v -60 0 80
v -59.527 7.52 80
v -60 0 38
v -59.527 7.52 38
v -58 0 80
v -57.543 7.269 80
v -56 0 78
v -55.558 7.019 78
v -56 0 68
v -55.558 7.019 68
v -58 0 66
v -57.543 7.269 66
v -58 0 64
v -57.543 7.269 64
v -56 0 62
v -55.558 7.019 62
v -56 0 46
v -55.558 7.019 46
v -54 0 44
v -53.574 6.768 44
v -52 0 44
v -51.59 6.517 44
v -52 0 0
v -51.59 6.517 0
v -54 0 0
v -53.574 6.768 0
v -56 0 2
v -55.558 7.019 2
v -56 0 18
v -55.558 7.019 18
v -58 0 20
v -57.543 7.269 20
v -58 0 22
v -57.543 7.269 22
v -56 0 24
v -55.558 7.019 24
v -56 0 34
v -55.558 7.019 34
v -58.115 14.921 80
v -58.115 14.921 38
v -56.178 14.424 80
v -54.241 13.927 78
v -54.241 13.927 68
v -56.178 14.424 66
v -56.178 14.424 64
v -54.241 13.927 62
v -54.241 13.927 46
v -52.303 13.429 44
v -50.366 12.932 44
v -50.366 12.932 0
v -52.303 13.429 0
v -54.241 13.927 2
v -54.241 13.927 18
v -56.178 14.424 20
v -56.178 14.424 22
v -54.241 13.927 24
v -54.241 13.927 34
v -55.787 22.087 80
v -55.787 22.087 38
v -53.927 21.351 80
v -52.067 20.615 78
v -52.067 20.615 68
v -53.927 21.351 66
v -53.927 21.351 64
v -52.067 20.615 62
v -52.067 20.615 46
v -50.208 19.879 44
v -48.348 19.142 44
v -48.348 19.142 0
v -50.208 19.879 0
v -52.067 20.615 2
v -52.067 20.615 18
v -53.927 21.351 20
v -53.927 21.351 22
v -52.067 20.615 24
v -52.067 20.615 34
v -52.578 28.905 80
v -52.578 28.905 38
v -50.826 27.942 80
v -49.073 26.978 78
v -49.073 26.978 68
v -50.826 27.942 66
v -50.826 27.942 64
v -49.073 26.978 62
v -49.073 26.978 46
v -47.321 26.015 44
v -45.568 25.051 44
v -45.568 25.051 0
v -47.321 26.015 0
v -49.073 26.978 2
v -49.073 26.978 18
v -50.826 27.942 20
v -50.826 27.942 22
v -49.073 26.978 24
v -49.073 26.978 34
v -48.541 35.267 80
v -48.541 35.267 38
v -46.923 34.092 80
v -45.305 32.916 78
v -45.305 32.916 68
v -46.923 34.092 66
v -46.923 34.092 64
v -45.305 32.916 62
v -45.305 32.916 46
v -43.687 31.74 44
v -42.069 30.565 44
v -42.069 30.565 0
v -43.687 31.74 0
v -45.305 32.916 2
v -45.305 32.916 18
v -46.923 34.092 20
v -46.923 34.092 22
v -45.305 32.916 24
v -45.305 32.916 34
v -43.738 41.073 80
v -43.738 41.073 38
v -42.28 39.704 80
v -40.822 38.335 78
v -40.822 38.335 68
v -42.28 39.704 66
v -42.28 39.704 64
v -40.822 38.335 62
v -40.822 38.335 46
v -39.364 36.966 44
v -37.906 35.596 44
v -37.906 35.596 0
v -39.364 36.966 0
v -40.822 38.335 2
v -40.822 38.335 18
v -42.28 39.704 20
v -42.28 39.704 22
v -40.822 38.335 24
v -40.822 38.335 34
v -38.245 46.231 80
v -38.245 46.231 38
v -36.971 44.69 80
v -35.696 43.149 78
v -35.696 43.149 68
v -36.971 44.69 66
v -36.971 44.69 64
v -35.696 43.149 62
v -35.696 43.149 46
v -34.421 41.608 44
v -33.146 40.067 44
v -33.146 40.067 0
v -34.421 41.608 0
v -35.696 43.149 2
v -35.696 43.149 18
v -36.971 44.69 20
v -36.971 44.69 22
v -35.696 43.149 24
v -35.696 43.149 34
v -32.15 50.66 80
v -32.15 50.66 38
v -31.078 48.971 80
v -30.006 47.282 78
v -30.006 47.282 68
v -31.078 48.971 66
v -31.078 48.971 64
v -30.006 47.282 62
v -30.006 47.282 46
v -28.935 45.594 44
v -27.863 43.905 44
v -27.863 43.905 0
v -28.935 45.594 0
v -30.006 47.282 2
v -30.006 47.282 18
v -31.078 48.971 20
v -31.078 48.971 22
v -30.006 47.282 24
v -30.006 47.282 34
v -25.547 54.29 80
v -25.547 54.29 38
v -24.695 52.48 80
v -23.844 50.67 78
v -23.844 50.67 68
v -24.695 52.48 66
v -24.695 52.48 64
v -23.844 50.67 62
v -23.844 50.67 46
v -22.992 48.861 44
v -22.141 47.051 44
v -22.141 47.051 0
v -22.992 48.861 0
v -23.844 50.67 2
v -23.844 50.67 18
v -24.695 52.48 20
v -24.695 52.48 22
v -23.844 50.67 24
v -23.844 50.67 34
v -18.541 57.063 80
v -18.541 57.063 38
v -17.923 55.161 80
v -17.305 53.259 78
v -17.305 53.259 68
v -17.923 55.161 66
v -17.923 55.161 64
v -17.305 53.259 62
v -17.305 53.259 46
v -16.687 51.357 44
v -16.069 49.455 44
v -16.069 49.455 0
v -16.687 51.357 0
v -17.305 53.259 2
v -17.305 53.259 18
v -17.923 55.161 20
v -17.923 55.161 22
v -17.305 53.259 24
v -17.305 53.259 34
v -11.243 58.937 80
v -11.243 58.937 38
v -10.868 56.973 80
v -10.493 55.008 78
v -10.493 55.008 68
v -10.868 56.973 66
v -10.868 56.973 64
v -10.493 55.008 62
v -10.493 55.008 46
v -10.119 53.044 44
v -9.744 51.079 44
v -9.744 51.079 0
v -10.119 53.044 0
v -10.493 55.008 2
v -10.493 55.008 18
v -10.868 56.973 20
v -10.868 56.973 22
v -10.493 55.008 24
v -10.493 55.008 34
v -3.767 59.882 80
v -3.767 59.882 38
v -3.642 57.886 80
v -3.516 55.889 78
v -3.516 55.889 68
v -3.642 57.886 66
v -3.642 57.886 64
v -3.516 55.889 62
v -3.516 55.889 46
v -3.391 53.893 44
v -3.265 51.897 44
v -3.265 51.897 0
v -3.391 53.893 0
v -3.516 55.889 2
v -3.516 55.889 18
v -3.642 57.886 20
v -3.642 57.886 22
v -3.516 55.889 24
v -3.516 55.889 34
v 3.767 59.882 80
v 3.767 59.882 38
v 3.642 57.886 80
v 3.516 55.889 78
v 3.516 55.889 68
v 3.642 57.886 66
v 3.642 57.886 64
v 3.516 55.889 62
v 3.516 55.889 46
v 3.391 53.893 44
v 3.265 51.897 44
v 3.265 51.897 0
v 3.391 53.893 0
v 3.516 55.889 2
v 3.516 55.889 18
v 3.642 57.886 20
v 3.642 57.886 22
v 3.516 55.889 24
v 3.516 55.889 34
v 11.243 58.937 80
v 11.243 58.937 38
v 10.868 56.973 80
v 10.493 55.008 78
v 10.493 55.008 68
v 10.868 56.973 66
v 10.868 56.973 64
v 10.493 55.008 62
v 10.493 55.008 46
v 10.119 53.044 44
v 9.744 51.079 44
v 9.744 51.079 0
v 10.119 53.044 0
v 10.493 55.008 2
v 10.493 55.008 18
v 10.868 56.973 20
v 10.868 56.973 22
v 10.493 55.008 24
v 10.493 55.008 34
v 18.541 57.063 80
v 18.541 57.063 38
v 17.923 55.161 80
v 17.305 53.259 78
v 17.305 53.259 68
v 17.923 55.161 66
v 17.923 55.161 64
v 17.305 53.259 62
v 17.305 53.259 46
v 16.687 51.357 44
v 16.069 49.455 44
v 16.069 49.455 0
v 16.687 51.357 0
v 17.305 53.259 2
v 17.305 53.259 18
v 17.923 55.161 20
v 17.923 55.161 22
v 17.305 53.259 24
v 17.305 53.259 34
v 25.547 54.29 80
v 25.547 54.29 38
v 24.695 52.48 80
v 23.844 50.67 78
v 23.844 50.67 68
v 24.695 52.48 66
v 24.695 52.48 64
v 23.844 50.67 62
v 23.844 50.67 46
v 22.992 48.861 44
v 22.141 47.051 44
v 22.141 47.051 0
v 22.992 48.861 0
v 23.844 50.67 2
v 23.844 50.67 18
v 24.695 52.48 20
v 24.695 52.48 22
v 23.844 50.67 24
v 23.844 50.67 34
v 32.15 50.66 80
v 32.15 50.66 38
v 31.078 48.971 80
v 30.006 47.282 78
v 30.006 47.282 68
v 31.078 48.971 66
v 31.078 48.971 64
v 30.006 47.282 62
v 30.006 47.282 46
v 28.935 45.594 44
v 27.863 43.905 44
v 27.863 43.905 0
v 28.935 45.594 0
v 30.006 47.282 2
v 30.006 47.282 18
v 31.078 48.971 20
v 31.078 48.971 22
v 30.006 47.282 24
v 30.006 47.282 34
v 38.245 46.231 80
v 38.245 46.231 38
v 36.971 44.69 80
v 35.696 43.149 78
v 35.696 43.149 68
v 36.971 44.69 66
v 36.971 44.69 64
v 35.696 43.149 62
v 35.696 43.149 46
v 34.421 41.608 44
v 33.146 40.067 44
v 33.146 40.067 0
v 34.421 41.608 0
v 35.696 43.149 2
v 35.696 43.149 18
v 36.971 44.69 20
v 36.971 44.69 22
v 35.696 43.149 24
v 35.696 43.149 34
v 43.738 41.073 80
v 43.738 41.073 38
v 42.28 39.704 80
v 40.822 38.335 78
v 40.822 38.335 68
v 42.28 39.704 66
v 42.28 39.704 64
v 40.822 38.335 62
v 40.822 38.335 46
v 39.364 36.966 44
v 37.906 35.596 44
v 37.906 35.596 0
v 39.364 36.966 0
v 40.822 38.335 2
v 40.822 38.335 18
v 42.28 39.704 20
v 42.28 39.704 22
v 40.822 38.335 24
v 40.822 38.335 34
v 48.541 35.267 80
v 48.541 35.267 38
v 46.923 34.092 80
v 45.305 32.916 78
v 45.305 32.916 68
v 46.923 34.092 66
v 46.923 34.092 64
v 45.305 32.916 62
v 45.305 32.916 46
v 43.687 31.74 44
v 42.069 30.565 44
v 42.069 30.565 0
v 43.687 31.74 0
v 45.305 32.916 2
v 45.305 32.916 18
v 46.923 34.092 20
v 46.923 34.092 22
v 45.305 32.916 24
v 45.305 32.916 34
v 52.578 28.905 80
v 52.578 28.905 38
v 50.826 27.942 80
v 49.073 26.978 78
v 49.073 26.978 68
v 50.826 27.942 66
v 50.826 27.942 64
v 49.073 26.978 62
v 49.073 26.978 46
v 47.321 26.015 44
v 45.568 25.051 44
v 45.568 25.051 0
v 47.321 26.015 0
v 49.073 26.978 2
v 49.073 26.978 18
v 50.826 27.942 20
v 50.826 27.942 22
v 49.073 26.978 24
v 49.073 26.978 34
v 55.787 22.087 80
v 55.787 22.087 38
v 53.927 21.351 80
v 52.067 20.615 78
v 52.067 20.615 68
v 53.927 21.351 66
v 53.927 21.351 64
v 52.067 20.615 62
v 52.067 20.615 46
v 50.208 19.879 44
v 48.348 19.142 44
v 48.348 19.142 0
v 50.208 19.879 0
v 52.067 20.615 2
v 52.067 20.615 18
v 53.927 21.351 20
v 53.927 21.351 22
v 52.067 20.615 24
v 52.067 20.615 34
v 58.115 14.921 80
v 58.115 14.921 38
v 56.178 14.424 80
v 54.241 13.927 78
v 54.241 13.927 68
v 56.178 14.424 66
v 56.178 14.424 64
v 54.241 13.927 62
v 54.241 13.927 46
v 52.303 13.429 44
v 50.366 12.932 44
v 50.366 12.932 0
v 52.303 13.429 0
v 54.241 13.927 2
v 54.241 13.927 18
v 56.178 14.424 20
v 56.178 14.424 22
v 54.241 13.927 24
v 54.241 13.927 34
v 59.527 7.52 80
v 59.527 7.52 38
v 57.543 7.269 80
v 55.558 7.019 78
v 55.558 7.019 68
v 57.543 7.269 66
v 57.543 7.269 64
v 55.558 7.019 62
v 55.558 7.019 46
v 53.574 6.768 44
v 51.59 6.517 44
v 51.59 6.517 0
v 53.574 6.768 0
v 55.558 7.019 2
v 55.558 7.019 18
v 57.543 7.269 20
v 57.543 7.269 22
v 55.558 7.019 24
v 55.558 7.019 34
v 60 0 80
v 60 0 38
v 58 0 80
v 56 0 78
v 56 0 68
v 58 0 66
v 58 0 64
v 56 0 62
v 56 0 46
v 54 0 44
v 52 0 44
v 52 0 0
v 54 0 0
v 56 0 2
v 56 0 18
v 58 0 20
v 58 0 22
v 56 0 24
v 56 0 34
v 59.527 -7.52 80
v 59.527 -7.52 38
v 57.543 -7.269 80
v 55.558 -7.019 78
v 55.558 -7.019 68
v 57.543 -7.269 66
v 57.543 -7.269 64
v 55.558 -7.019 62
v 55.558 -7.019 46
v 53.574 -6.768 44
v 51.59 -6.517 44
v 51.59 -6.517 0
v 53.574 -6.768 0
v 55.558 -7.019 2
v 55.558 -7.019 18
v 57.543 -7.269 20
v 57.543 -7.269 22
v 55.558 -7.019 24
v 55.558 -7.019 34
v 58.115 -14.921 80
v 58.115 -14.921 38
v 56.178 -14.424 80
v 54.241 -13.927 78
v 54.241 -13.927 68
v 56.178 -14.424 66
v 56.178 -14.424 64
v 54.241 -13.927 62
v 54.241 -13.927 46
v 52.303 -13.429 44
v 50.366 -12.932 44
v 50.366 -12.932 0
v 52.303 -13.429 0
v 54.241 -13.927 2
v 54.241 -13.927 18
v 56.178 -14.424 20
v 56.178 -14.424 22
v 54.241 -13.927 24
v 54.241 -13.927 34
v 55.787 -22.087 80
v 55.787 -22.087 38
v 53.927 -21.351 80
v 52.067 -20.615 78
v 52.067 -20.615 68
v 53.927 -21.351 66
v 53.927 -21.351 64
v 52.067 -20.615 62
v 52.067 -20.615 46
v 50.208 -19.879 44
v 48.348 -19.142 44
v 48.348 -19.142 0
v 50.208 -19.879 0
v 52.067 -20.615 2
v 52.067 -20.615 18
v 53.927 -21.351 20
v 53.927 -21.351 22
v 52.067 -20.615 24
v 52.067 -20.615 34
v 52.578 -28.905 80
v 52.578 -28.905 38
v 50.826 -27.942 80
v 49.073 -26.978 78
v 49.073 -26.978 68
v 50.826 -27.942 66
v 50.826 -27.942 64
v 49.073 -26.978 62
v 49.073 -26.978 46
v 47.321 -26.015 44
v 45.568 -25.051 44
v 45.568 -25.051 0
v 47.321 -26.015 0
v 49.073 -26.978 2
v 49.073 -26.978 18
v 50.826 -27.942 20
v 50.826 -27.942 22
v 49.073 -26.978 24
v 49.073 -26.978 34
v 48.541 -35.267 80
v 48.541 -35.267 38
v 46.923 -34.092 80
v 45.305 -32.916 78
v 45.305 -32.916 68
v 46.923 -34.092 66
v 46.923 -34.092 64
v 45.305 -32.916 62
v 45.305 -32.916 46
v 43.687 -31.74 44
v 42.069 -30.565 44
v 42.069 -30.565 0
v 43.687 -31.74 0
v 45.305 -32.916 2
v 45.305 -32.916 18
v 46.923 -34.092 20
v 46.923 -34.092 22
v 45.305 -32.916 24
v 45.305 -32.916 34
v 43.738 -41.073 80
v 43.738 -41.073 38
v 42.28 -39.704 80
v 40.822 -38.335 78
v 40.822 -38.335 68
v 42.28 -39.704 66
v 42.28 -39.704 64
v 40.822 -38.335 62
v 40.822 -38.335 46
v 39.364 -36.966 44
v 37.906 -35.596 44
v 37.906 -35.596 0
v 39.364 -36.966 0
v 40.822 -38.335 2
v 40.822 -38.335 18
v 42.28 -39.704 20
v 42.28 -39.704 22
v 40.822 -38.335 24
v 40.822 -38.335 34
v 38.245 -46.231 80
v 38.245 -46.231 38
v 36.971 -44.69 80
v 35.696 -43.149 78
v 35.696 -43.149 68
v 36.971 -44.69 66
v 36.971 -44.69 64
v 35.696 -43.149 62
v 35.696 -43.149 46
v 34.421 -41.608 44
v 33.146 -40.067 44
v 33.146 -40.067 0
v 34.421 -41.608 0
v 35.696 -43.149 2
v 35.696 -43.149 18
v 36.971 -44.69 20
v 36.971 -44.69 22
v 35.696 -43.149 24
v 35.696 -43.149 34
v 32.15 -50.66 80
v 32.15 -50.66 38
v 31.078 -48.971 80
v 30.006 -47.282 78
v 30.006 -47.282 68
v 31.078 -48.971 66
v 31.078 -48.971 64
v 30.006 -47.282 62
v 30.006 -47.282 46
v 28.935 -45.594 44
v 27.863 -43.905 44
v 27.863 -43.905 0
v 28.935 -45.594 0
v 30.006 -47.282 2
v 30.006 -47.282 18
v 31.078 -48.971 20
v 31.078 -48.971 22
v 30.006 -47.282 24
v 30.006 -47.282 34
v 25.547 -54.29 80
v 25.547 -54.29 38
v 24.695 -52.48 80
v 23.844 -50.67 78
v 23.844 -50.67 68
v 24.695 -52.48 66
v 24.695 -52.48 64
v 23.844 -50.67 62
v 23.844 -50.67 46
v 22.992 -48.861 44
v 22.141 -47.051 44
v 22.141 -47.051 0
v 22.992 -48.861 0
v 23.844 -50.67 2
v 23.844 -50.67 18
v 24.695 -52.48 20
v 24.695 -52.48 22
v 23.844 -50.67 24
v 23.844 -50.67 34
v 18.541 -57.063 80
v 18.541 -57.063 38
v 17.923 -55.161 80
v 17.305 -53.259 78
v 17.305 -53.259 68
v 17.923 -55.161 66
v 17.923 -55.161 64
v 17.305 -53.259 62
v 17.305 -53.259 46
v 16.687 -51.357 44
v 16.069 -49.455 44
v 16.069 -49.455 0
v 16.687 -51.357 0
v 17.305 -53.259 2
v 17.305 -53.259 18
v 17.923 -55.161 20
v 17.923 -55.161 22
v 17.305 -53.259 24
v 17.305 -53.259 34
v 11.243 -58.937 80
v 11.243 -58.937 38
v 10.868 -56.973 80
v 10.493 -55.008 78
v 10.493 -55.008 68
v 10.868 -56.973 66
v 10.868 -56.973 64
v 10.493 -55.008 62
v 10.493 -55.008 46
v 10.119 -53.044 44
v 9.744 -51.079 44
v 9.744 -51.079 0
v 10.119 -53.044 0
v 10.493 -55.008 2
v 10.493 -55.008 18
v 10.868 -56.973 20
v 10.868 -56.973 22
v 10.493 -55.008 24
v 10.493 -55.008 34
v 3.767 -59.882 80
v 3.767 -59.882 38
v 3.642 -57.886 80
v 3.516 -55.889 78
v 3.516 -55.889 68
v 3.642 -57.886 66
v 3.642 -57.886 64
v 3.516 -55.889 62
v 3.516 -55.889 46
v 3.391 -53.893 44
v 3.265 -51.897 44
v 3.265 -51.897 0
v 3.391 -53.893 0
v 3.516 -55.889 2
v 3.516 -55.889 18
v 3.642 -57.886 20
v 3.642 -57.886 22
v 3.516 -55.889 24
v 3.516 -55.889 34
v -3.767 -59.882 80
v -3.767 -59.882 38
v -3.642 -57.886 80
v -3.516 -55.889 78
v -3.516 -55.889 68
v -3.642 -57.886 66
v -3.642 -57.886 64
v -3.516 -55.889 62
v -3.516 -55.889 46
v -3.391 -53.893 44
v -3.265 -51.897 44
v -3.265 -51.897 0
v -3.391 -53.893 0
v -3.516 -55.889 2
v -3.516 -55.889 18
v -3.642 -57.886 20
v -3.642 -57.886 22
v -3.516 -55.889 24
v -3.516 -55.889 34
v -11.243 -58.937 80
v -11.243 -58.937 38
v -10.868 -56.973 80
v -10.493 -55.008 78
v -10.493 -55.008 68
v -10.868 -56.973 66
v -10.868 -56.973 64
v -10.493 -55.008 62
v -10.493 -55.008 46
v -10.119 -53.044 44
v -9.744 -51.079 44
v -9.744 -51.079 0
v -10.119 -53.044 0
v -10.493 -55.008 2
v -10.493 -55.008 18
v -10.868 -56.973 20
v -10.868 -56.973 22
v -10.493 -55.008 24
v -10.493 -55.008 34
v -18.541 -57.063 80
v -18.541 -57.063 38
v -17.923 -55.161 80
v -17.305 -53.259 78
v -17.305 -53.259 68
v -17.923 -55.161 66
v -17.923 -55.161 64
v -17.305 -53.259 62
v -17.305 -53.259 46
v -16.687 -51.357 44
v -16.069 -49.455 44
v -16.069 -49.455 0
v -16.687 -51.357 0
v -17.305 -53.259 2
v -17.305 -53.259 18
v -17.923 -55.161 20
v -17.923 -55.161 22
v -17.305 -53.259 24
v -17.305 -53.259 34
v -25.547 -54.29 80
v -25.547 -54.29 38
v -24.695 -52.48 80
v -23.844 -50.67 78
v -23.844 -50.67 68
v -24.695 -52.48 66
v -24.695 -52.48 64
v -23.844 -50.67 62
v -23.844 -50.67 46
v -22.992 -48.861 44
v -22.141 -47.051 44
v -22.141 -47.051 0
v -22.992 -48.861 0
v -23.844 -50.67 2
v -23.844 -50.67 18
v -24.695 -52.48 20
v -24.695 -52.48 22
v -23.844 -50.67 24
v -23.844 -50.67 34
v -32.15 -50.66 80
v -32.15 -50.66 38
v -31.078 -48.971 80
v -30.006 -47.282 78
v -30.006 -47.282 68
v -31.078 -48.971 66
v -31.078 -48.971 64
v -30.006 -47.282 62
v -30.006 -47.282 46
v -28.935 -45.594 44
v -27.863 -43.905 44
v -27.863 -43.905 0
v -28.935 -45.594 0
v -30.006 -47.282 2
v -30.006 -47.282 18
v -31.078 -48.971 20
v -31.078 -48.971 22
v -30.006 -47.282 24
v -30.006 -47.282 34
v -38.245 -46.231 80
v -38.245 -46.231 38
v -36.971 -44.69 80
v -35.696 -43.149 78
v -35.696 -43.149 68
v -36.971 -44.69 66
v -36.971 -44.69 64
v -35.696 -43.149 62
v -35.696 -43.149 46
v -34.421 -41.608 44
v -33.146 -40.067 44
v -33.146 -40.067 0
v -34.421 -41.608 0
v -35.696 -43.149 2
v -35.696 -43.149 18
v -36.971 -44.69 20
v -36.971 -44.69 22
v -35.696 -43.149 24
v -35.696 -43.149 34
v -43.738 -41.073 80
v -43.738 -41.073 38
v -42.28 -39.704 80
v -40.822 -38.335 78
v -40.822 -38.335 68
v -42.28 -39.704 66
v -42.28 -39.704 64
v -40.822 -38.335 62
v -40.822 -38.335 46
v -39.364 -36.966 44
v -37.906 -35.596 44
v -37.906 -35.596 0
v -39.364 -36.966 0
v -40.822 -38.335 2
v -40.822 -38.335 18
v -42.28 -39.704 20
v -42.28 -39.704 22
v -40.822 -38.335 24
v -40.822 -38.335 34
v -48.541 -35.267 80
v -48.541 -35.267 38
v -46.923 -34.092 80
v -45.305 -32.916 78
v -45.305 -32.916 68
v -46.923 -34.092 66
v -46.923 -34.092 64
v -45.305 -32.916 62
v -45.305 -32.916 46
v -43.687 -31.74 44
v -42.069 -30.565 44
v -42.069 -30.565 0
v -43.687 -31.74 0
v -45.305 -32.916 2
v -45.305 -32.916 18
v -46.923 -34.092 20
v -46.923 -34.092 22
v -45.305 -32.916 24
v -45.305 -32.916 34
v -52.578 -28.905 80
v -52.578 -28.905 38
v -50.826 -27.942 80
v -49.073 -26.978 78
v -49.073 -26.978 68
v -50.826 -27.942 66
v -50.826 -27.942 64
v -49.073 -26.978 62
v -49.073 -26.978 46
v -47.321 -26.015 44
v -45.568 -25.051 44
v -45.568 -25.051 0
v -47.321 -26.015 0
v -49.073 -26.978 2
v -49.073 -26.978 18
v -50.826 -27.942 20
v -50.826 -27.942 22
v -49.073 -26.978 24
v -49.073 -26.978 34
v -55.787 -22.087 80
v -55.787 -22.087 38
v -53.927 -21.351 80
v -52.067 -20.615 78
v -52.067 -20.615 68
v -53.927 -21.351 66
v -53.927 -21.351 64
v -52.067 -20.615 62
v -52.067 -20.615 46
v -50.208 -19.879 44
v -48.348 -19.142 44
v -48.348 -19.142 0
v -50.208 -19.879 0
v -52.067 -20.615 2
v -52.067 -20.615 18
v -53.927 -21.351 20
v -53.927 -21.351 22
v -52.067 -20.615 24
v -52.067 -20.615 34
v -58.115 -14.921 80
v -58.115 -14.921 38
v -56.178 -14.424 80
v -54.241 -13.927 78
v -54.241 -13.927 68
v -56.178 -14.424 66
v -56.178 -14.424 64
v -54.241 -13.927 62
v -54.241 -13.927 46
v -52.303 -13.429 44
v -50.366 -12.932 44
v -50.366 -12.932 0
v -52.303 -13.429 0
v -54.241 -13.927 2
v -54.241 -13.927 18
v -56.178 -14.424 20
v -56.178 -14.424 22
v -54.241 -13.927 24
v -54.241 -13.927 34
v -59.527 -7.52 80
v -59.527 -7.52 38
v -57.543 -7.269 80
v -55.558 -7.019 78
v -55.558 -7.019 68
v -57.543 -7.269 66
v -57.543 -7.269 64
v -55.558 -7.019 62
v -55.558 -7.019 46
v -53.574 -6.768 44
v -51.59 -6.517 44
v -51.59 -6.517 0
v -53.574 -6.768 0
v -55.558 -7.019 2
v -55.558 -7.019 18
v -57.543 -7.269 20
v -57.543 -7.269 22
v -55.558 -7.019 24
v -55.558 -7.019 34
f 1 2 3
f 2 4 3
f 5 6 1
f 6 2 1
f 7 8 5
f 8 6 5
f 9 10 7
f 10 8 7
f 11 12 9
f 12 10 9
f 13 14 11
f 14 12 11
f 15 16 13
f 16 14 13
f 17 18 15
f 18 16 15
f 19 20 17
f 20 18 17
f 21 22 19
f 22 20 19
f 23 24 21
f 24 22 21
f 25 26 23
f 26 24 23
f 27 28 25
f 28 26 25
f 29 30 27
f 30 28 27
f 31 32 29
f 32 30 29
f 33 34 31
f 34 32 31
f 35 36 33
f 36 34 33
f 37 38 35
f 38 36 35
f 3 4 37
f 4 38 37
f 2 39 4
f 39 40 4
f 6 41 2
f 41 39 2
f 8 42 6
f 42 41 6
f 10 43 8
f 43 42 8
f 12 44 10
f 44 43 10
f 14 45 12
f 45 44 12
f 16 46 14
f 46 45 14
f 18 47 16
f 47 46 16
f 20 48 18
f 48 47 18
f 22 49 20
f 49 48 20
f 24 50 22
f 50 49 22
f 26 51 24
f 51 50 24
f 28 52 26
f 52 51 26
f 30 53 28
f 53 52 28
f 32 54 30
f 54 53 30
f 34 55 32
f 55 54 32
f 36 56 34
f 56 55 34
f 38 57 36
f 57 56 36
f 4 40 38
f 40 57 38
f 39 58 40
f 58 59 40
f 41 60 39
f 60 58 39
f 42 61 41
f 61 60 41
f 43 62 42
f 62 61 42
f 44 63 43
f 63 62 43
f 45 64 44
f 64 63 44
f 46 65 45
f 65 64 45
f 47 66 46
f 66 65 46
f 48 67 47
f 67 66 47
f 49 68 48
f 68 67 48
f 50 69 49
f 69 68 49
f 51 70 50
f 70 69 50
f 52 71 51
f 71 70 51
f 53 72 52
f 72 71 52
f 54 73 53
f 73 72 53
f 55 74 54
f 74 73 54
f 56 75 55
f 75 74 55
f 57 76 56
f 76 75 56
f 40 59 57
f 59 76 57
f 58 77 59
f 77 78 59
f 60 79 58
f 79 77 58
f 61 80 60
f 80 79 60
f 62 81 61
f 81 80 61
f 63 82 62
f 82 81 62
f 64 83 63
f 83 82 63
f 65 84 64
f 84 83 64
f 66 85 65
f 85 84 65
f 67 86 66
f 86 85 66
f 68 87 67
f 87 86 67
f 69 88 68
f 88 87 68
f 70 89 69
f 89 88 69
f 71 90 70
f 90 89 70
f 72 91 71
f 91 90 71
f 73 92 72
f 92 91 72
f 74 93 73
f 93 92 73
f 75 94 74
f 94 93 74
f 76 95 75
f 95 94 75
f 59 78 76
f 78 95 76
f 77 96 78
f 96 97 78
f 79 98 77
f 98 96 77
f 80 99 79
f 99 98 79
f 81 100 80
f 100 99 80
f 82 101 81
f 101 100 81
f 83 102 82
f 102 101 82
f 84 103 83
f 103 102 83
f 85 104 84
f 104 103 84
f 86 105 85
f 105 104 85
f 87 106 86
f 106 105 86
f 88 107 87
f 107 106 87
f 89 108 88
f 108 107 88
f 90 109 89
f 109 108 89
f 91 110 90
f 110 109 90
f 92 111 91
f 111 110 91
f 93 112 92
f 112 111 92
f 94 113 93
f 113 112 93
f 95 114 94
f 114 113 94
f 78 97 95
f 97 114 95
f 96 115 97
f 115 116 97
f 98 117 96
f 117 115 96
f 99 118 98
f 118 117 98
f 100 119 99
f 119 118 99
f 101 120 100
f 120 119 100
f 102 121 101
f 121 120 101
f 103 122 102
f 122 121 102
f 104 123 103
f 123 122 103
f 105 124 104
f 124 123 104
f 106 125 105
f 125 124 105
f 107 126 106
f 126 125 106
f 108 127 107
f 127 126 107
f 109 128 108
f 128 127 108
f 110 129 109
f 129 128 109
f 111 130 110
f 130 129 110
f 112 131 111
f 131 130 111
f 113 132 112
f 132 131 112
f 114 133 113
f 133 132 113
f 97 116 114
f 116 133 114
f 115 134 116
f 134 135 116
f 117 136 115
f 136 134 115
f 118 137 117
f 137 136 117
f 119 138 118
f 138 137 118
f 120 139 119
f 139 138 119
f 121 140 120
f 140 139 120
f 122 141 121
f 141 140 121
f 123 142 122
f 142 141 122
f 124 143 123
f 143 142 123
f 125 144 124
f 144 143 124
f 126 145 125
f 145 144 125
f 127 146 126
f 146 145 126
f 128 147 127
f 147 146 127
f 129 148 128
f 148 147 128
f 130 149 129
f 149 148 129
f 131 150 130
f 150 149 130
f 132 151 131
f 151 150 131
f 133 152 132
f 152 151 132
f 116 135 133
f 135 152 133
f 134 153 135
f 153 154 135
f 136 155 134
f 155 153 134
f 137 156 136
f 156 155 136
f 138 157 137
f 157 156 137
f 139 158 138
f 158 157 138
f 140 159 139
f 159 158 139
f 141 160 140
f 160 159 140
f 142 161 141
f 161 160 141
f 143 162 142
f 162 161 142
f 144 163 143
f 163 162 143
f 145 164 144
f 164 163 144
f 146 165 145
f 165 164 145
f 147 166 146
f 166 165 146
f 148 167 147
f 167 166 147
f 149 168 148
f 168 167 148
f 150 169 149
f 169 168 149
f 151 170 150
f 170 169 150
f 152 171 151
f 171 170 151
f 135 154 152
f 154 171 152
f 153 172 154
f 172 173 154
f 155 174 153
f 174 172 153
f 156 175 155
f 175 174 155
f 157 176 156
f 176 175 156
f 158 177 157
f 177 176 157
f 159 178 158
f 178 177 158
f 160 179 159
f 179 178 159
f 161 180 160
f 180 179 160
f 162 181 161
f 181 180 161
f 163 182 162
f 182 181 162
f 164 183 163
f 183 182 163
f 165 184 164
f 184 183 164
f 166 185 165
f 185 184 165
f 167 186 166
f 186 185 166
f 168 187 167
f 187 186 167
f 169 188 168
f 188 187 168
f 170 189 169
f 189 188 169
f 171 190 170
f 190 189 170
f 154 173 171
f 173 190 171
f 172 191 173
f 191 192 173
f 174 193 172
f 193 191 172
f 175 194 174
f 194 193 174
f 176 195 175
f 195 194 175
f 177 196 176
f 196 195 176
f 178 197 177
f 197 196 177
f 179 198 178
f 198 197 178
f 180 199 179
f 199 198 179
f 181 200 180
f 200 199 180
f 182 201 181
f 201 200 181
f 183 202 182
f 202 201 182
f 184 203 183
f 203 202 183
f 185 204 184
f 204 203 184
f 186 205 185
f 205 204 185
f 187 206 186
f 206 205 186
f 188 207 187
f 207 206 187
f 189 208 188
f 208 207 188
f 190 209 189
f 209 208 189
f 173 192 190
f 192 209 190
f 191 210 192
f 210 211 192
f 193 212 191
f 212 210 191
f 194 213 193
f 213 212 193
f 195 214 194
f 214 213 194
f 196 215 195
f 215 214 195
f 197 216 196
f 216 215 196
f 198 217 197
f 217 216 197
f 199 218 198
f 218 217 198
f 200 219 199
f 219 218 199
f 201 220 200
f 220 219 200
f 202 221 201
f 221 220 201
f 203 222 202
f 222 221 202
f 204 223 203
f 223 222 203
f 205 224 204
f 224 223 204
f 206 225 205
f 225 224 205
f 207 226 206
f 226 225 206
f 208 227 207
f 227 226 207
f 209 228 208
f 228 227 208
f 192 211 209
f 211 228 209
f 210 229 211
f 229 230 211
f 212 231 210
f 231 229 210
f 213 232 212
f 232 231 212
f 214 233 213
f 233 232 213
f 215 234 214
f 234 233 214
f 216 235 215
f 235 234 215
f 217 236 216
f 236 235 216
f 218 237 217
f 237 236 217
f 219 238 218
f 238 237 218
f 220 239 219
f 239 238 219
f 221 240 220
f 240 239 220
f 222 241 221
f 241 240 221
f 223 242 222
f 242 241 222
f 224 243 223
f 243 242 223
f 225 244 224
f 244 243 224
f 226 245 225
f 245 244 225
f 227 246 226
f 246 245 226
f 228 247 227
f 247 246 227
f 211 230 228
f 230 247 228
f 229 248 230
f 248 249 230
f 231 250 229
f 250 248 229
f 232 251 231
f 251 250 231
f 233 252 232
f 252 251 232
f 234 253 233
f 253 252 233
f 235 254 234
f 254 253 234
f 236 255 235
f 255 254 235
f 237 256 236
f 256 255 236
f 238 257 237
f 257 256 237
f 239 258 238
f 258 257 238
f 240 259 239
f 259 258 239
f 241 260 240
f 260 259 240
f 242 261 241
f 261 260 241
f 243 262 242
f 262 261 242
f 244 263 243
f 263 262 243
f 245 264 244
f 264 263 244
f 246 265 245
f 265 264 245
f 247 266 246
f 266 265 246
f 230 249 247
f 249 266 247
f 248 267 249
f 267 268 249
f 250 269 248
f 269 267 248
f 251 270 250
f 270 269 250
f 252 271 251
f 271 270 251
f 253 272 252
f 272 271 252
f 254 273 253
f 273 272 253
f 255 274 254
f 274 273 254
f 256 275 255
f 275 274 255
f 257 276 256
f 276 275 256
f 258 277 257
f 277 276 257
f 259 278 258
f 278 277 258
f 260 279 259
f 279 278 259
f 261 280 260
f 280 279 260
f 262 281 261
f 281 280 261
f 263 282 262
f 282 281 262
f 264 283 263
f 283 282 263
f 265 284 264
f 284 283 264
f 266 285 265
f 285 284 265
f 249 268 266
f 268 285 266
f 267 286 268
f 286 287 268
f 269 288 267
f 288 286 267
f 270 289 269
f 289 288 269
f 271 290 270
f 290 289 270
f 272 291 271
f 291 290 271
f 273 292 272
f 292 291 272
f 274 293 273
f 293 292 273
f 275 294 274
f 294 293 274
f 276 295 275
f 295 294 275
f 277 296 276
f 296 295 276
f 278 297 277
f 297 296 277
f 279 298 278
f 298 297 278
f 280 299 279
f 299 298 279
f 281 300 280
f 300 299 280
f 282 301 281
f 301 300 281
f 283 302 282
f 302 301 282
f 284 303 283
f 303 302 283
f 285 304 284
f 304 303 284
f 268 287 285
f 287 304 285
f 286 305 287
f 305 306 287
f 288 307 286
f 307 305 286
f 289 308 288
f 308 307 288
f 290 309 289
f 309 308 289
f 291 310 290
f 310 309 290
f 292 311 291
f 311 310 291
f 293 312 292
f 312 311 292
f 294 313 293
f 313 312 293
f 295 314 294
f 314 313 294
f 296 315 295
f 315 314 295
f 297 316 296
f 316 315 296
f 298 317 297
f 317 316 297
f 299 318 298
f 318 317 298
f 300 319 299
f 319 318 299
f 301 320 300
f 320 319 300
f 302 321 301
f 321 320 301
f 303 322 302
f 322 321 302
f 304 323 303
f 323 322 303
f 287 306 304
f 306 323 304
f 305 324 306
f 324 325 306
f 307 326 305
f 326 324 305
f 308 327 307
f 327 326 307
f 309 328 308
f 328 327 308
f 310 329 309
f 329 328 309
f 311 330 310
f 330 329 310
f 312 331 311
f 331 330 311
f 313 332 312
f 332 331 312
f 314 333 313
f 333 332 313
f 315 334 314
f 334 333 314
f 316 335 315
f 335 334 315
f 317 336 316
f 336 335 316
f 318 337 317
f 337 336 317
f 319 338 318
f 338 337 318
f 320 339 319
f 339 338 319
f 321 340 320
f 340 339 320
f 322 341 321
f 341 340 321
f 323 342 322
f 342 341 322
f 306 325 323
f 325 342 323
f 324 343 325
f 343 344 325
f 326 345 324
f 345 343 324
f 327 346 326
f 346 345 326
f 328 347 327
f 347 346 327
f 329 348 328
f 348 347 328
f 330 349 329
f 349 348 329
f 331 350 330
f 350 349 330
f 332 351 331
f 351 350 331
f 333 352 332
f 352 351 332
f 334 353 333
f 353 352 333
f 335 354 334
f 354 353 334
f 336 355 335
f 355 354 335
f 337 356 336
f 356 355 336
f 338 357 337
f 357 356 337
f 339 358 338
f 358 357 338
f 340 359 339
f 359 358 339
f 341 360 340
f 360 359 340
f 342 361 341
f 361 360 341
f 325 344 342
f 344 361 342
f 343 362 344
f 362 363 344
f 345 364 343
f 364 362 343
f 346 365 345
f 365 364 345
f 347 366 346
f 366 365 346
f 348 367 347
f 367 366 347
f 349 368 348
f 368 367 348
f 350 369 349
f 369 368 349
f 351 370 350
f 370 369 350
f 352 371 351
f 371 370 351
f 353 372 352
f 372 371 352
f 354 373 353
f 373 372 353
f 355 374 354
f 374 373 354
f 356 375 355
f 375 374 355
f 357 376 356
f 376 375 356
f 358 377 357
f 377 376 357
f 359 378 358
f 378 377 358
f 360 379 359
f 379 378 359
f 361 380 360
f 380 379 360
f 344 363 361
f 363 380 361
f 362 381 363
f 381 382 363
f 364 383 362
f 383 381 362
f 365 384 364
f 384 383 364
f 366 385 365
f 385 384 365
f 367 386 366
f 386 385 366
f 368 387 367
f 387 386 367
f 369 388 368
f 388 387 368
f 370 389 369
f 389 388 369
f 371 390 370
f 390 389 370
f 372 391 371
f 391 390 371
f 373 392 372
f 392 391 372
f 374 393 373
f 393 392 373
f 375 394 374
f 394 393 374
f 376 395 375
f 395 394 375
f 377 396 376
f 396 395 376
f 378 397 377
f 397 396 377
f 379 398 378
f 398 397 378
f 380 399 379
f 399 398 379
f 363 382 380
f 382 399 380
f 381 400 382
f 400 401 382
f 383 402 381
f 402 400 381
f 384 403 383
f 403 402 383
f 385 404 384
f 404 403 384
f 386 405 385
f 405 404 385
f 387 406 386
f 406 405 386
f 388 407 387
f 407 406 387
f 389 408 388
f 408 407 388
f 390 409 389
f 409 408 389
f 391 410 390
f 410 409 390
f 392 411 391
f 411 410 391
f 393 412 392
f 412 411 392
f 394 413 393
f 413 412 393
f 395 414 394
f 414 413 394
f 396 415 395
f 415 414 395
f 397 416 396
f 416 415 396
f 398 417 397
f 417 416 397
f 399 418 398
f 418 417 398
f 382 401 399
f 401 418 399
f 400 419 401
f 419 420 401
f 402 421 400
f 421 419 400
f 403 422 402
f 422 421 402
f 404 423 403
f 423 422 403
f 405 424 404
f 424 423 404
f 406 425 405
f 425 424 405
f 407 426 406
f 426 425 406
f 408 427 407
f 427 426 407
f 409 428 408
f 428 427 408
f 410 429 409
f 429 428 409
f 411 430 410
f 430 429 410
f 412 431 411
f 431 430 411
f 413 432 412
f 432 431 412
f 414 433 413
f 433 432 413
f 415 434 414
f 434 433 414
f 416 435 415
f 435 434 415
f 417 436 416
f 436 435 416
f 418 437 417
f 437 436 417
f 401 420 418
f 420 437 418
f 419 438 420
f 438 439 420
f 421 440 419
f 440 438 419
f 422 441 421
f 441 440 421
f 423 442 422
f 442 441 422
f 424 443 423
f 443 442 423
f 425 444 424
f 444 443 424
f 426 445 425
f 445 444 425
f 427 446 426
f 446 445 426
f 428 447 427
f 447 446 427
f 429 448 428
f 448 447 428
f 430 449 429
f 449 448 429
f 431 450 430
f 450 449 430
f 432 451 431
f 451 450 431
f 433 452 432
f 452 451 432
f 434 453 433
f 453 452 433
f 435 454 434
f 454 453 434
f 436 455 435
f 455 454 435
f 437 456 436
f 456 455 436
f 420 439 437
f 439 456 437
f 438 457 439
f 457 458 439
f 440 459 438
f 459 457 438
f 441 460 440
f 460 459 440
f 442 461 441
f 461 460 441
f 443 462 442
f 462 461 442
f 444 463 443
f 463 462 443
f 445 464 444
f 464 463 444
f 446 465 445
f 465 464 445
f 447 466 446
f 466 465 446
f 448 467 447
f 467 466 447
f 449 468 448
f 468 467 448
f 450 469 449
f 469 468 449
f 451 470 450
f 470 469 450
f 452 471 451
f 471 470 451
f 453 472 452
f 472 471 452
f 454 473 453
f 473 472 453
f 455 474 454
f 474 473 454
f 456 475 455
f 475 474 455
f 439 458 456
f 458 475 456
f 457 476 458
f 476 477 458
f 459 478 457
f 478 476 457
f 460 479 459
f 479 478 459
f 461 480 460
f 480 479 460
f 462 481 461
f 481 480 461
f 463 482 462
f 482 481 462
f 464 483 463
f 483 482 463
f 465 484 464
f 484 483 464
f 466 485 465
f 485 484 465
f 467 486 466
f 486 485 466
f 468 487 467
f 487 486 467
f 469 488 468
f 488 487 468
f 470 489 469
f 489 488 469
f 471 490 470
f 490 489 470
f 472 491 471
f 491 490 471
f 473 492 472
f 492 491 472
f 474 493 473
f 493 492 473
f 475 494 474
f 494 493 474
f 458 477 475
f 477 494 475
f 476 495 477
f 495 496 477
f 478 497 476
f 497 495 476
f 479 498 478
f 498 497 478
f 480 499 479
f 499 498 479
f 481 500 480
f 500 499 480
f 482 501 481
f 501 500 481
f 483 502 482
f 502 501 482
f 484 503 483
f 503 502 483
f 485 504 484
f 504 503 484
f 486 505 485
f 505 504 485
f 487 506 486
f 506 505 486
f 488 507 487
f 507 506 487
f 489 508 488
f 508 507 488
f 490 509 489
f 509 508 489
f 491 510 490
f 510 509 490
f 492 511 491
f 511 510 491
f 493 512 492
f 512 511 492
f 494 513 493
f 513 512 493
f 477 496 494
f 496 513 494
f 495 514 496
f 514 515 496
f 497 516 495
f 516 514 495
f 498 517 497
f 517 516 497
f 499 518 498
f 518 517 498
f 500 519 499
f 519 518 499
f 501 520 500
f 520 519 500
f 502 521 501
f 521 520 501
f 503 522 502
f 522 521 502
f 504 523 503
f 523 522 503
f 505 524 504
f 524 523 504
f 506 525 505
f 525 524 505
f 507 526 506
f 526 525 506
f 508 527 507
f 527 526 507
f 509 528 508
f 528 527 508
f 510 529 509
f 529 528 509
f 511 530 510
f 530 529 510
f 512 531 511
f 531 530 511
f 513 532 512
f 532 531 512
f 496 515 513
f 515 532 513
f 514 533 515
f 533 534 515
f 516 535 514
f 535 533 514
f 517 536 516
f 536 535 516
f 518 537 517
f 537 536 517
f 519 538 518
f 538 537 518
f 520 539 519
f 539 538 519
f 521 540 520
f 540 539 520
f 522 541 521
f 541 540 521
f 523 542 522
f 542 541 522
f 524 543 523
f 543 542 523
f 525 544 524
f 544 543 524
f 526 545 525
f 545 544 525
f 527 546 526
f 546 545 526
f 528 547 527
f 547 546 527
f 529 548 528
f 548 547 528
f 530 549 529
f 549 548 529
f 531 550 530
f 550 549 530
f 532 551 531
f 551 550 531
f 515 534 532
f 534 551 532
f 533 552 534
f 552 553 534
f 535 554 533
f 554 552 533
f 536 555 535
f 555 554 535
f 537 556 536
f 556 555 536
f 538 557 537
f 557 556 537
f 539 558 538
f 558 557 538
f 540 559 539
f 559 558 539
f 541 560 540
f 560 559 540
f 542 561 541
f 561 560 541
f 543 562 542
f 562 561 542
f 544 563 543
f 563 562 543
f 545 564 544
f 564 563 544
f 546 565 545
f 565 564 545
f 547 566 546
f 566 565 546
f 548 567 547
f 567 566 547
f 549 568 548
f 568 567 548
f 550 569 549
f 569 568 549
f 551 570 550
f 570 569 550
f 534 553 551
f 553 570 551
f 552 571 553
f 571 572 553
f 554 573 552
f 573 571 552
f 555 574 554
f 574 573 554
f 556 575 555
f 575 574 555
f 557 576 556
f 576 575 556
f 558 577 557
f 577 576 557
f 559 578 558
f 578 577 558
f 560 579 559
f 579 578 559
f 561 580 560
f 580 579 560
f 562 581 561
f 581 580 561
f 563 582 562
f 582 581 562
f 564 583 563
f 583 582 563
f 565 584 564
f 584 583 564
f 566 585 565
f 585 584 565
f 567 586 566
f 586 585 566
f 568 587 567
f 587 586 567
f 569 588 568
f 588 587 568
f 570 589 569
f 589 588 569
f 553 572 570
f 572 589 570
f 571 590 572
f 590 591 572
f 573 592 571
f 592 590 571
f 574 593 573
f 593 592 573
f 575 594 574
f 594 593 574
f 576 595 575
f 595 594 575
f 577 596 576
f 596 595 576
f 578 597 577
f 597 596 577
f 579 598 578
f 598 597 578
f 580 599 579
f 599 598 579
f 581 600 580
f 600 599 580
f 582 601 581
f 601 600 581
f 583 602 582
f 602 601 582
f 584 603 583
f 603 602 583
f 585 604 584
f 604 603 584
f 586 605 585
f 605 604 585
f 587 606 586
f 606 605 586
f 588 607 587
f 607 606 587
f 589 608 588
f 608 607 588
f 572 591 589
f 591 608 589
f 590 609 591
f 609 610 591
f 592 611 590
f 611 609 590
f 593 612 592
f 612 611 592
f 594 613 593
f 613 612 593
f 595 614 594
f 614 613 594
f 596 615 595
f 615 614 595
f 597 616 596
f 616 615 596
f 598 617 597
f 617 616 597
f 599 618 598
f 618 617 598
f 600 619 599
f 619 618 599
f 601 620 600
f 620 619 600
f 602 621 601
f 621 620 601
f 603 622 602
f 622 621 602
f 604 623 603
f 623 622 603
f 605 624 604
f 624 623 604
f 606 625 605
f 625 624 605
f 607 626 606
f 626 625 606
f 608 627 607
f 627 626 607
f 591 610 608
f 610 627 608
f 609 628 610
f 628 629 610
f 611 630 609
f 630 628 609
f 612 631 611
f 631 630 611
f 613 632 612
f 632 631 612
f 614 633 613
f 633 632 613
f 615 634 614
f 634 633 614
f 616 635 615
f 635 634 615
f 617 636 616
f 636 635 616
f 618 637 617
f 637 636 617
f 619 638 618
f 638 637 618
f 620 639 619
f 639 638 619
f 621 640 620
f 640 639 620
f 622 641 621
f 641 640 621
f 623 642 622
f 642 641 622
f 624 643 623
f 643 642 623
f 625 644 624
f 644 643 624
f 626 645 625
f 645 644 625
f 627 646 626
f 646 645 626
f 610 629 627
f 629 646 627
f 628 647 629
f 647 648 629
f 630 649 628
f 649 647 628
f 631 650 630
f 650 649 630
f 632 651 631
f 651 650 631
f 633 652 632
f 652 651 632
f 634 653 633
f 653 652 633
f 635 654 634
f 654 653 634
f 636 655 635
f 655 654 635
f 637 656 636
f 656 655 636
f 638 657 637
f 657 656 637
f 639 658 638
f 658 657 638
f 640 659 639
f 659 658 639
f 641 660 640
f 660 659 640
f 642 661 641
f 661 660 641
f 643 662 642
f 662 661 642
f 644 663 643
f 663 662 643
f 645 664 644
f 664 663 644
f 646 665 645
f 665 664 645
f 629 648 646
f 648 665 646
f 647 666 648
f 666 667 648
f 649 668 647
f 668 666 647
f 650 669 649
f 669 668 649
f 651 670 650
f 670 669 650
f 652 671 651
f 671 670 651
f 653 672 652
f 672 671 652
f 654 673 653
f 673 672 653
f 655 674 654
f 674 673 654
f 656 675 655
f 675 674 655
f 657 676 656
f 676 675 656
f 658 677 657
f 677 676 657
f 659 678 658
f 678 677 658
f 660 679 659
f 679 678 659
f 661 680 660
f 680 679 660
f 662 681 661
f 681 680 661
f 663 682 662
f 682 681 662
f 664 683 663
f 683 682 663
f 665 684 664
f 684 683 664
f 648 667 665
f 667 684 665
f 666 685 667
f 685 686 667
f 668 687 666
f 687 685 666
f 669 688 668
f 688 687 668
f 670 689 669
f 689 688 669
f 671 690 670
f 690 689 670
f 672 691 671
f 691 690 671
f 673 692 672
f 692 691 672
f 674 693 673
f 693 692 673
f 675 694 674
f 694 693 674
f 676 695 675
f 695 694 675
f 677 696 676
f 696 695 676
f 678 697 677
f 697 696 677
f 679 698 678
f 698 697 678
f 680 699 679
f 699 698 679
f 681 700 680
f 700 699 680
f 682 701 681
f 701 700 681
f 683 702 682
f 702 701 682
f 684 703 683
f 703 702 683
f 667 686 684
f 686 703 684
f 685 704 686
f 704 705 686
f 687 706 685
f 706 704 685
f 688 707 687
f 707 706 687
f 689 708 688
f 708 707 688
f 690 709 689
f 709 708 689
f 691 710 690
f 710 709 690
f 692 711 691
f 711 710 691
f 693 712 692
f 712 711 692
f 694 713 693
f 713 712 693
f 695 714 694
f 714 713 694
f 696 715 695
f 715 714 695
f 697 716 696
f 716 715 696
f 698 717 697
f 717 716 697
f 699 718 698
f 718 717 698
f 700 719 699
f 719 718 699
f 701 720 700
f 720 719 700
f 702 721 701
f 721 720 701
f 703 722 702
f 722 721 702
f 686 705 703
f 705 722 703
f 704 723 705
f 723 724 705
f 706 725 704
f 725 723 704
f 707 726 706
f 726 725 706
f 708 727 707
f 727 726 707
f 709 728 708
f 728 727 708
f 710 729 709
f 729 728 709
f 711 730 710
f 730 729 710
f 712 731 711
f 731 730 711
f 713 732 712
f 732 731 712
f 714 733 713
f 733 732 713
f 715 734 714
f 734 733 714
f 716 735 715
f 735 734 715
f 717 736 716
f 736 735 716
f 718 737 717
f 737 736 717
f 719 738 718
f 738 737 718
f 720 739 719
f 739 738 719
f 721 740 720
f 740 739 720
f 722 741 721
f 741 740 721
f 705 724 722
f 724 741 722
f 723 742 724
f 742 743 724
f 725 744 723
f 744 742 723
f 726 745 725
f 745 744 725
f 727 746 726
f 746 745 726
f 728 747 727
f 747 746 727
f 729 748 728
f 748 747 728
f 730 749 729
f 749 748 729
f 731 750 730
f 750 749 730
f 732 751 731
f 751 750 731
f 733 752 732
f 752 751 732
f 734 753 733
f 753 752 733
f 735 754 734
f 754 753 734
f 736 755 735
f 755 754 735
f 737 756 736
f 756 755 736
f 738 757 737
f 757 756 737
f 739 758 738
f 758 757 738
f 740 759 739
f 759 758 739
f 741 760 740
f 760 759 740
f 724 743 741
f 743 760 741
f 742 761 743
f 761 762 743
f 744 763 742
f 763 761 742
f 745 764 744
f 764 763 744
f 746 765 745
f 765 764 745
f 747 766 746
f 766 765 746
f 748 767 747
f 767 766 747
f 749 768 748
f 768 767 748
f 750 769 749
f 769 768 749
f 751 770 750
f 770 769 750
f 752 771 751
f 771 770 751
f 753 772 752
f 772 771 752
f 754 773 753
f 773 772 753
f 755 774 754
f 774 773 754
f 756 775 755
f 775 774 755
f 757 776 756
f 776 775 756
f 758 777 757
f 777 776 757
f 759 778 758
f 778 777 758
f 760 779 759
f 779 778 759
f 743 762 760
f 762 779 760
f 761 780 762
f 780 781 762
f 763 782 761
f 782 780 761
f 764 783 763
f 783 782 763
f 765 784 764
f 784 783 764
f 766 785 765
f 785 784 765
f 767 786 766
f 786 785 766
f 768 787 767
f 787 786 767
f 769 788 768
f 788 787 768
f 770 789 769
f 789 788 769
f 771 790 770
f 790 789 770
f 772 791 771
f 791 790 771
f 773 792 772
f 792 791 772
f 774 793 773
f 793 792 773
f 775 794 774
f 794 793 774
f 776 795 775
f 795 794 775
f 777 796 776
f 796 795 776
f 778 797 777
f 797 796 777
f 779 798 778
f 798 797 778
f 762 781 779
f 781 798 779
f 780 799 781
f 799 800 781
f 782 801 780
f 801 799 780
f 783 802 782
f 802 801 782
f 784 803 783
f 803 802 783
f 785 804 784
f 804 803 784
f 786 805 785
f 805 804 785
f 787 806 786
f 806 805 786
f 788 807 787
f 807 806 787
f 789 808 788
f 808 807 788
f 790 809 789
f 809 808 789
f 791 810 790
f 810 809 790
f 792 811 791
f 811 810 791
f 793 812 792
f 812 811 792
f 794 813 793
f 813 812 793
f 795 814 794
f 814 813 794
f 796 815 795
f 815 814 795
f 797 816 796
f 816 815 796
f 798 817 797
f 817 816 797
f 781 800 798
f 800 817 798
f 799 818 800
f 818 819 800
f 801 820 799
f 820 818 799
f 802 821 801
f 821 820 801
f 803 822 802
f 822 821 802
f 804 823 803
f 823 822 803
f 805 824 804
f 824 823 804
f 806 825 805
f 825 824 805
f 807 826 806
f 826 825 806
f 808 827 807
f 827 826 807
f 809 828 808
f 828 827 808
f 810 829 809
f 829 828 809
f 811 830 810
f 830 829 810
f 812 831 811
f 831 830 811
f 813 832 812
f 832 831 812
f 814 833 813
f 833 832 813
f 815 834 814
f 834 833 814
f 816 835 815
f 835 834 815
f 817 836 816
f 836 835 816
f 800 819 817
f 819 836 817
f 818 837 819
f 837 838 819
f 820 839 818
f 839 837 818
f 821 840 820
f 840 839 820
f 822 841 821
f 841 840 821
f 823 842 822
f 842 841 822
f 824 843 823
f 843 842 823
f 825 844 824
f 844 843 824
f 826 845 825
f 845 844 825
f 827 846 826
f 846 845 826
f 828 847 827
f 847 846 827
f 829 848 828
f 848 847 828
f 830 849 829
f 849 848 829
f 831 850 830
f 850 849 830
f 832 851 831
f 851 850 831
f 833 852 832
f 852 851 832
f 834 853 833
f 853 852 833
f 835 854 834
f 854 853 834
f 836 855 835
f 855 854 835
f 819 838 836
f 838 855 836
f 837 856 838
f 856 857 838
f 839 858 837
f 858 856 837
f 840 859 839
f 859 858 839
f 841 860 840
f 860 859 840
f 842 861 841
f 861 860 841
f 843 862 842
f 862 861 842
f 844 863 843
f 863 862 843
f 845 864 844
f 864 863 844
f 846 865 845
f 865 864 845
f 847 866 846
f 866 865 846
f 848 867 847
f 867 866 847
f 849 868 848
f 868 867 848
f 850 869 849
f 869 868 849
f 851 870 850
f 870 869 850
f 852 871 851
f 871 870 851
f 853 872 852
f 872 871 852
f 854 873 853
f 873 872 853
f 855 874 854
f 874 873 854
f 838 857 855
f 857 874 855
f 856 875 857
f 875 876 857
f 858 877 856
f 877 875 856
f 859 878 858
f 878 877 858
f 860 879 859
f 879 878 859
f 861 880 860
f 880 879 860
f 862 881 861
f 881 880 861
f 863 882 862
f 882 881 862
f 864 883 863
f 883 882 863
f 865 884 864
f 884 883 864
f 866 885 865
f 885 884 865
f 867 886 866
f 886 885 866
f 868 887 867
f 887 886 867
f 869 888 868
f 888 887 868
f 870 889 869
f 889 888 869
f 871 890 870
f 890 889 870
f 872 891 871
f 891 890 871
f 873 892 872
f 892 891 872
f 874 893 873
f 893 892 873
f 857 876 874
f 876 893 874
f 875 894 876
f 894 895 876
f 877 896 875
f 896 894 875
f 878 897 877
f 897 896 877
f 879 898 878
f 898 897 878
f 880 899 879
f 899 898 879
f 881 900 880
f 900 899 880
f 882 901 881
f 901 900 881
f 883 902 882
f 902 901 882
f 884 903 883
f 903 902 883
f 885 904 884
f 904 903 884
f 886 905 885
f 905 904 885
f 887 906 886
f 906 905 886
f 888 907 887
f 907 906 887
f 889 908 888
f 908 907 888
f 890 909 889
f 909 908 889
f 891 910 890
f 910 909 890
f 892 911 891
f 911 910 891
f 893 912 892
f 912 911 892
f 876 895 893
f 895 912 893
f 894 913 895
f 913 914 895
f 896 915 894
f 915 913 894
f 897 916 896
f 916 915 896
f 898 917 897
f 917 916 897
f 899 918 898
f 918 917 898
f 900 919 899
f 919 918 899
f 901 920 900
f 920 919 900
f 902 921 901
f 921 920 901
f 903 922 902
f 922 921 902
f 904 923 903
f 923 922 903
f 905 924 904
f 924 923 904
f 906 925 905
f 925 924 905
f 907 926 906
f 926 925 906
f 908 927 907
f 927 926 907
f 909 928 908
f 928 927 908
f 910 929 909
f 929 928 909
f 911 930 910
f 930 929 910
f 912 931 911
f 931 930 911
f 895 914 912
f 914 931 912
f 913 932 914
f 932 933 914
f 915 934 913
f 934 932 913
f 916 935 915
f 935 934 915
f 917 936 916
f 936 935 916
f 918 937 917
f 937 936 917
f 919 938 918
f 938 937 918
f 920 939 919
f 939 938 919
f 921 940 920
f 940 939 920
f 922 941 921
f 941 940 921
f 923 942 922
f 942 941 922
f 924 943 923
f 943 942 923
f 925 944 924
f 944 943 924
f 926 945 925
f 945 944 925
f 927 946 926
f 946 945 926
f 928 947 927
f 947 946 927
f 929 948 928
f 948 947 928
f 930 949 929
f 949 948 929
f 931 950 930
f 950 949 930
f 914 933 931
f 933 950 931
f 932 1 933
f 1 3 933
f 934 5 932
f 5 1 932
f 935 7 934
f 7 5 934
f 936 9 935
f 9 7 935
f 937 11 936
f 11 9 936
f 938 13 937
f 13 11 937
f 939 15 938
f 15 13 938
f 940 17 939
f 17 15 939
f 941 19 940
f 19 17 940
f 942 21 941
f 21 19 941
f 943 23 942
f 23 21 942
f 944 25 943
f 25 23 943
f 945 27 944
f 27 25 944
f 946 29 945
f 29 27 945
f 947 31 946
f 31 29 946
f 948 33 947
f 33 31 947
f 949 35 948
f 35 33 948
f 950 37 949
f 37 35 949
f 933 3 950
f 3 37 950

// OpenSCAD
// file: coffee-can-middle-module.scad
module renderMiddle(radius, height, inset, border) {
  indent = 2;

  rotate_extrude() {
    polygon(
      [
        [radius - border * 2, 0],
        [radius - border * 2 + border / 2, 0],
        [radius - border, border / 2],

        [radius - border, height - border - border / 2 - inset],
        [radius - border + indent, height - border - border / 2 - inset - indent],
        [radius - border + indent, height - border - border / 2 - inset - indent * 2],
        [radius - border, height - border - border / 2 - inset - indent * 3],

        [radius - border, height - border - border / 2],
        [radius, height - border + border / 2],
        [radius, height * 2],
        [radius - border / 2, height * 2],
        [radius - border, height * 2 - border / 2],

        [radius - border, height * 2 - border / 2 - inset],
        [radius - border + indent, height * 2 - border / 2 - inset - indent],
        [radius - border + indent, height * 2 - border / 2 - inset - indent * 2],
        [radius - border, height * 2 - border / 2 - inset - indent * 3],

        [radius - border, height + border + border / 2],
        [radius - border - border / 2, height + border],
        [radius - border * 2, height + border],
      ]
    );
  }
}
// main file
include <coffee-can-middle-module.scad>
$fn = 50;

renderMiddle(60, 40, 10, 4);
